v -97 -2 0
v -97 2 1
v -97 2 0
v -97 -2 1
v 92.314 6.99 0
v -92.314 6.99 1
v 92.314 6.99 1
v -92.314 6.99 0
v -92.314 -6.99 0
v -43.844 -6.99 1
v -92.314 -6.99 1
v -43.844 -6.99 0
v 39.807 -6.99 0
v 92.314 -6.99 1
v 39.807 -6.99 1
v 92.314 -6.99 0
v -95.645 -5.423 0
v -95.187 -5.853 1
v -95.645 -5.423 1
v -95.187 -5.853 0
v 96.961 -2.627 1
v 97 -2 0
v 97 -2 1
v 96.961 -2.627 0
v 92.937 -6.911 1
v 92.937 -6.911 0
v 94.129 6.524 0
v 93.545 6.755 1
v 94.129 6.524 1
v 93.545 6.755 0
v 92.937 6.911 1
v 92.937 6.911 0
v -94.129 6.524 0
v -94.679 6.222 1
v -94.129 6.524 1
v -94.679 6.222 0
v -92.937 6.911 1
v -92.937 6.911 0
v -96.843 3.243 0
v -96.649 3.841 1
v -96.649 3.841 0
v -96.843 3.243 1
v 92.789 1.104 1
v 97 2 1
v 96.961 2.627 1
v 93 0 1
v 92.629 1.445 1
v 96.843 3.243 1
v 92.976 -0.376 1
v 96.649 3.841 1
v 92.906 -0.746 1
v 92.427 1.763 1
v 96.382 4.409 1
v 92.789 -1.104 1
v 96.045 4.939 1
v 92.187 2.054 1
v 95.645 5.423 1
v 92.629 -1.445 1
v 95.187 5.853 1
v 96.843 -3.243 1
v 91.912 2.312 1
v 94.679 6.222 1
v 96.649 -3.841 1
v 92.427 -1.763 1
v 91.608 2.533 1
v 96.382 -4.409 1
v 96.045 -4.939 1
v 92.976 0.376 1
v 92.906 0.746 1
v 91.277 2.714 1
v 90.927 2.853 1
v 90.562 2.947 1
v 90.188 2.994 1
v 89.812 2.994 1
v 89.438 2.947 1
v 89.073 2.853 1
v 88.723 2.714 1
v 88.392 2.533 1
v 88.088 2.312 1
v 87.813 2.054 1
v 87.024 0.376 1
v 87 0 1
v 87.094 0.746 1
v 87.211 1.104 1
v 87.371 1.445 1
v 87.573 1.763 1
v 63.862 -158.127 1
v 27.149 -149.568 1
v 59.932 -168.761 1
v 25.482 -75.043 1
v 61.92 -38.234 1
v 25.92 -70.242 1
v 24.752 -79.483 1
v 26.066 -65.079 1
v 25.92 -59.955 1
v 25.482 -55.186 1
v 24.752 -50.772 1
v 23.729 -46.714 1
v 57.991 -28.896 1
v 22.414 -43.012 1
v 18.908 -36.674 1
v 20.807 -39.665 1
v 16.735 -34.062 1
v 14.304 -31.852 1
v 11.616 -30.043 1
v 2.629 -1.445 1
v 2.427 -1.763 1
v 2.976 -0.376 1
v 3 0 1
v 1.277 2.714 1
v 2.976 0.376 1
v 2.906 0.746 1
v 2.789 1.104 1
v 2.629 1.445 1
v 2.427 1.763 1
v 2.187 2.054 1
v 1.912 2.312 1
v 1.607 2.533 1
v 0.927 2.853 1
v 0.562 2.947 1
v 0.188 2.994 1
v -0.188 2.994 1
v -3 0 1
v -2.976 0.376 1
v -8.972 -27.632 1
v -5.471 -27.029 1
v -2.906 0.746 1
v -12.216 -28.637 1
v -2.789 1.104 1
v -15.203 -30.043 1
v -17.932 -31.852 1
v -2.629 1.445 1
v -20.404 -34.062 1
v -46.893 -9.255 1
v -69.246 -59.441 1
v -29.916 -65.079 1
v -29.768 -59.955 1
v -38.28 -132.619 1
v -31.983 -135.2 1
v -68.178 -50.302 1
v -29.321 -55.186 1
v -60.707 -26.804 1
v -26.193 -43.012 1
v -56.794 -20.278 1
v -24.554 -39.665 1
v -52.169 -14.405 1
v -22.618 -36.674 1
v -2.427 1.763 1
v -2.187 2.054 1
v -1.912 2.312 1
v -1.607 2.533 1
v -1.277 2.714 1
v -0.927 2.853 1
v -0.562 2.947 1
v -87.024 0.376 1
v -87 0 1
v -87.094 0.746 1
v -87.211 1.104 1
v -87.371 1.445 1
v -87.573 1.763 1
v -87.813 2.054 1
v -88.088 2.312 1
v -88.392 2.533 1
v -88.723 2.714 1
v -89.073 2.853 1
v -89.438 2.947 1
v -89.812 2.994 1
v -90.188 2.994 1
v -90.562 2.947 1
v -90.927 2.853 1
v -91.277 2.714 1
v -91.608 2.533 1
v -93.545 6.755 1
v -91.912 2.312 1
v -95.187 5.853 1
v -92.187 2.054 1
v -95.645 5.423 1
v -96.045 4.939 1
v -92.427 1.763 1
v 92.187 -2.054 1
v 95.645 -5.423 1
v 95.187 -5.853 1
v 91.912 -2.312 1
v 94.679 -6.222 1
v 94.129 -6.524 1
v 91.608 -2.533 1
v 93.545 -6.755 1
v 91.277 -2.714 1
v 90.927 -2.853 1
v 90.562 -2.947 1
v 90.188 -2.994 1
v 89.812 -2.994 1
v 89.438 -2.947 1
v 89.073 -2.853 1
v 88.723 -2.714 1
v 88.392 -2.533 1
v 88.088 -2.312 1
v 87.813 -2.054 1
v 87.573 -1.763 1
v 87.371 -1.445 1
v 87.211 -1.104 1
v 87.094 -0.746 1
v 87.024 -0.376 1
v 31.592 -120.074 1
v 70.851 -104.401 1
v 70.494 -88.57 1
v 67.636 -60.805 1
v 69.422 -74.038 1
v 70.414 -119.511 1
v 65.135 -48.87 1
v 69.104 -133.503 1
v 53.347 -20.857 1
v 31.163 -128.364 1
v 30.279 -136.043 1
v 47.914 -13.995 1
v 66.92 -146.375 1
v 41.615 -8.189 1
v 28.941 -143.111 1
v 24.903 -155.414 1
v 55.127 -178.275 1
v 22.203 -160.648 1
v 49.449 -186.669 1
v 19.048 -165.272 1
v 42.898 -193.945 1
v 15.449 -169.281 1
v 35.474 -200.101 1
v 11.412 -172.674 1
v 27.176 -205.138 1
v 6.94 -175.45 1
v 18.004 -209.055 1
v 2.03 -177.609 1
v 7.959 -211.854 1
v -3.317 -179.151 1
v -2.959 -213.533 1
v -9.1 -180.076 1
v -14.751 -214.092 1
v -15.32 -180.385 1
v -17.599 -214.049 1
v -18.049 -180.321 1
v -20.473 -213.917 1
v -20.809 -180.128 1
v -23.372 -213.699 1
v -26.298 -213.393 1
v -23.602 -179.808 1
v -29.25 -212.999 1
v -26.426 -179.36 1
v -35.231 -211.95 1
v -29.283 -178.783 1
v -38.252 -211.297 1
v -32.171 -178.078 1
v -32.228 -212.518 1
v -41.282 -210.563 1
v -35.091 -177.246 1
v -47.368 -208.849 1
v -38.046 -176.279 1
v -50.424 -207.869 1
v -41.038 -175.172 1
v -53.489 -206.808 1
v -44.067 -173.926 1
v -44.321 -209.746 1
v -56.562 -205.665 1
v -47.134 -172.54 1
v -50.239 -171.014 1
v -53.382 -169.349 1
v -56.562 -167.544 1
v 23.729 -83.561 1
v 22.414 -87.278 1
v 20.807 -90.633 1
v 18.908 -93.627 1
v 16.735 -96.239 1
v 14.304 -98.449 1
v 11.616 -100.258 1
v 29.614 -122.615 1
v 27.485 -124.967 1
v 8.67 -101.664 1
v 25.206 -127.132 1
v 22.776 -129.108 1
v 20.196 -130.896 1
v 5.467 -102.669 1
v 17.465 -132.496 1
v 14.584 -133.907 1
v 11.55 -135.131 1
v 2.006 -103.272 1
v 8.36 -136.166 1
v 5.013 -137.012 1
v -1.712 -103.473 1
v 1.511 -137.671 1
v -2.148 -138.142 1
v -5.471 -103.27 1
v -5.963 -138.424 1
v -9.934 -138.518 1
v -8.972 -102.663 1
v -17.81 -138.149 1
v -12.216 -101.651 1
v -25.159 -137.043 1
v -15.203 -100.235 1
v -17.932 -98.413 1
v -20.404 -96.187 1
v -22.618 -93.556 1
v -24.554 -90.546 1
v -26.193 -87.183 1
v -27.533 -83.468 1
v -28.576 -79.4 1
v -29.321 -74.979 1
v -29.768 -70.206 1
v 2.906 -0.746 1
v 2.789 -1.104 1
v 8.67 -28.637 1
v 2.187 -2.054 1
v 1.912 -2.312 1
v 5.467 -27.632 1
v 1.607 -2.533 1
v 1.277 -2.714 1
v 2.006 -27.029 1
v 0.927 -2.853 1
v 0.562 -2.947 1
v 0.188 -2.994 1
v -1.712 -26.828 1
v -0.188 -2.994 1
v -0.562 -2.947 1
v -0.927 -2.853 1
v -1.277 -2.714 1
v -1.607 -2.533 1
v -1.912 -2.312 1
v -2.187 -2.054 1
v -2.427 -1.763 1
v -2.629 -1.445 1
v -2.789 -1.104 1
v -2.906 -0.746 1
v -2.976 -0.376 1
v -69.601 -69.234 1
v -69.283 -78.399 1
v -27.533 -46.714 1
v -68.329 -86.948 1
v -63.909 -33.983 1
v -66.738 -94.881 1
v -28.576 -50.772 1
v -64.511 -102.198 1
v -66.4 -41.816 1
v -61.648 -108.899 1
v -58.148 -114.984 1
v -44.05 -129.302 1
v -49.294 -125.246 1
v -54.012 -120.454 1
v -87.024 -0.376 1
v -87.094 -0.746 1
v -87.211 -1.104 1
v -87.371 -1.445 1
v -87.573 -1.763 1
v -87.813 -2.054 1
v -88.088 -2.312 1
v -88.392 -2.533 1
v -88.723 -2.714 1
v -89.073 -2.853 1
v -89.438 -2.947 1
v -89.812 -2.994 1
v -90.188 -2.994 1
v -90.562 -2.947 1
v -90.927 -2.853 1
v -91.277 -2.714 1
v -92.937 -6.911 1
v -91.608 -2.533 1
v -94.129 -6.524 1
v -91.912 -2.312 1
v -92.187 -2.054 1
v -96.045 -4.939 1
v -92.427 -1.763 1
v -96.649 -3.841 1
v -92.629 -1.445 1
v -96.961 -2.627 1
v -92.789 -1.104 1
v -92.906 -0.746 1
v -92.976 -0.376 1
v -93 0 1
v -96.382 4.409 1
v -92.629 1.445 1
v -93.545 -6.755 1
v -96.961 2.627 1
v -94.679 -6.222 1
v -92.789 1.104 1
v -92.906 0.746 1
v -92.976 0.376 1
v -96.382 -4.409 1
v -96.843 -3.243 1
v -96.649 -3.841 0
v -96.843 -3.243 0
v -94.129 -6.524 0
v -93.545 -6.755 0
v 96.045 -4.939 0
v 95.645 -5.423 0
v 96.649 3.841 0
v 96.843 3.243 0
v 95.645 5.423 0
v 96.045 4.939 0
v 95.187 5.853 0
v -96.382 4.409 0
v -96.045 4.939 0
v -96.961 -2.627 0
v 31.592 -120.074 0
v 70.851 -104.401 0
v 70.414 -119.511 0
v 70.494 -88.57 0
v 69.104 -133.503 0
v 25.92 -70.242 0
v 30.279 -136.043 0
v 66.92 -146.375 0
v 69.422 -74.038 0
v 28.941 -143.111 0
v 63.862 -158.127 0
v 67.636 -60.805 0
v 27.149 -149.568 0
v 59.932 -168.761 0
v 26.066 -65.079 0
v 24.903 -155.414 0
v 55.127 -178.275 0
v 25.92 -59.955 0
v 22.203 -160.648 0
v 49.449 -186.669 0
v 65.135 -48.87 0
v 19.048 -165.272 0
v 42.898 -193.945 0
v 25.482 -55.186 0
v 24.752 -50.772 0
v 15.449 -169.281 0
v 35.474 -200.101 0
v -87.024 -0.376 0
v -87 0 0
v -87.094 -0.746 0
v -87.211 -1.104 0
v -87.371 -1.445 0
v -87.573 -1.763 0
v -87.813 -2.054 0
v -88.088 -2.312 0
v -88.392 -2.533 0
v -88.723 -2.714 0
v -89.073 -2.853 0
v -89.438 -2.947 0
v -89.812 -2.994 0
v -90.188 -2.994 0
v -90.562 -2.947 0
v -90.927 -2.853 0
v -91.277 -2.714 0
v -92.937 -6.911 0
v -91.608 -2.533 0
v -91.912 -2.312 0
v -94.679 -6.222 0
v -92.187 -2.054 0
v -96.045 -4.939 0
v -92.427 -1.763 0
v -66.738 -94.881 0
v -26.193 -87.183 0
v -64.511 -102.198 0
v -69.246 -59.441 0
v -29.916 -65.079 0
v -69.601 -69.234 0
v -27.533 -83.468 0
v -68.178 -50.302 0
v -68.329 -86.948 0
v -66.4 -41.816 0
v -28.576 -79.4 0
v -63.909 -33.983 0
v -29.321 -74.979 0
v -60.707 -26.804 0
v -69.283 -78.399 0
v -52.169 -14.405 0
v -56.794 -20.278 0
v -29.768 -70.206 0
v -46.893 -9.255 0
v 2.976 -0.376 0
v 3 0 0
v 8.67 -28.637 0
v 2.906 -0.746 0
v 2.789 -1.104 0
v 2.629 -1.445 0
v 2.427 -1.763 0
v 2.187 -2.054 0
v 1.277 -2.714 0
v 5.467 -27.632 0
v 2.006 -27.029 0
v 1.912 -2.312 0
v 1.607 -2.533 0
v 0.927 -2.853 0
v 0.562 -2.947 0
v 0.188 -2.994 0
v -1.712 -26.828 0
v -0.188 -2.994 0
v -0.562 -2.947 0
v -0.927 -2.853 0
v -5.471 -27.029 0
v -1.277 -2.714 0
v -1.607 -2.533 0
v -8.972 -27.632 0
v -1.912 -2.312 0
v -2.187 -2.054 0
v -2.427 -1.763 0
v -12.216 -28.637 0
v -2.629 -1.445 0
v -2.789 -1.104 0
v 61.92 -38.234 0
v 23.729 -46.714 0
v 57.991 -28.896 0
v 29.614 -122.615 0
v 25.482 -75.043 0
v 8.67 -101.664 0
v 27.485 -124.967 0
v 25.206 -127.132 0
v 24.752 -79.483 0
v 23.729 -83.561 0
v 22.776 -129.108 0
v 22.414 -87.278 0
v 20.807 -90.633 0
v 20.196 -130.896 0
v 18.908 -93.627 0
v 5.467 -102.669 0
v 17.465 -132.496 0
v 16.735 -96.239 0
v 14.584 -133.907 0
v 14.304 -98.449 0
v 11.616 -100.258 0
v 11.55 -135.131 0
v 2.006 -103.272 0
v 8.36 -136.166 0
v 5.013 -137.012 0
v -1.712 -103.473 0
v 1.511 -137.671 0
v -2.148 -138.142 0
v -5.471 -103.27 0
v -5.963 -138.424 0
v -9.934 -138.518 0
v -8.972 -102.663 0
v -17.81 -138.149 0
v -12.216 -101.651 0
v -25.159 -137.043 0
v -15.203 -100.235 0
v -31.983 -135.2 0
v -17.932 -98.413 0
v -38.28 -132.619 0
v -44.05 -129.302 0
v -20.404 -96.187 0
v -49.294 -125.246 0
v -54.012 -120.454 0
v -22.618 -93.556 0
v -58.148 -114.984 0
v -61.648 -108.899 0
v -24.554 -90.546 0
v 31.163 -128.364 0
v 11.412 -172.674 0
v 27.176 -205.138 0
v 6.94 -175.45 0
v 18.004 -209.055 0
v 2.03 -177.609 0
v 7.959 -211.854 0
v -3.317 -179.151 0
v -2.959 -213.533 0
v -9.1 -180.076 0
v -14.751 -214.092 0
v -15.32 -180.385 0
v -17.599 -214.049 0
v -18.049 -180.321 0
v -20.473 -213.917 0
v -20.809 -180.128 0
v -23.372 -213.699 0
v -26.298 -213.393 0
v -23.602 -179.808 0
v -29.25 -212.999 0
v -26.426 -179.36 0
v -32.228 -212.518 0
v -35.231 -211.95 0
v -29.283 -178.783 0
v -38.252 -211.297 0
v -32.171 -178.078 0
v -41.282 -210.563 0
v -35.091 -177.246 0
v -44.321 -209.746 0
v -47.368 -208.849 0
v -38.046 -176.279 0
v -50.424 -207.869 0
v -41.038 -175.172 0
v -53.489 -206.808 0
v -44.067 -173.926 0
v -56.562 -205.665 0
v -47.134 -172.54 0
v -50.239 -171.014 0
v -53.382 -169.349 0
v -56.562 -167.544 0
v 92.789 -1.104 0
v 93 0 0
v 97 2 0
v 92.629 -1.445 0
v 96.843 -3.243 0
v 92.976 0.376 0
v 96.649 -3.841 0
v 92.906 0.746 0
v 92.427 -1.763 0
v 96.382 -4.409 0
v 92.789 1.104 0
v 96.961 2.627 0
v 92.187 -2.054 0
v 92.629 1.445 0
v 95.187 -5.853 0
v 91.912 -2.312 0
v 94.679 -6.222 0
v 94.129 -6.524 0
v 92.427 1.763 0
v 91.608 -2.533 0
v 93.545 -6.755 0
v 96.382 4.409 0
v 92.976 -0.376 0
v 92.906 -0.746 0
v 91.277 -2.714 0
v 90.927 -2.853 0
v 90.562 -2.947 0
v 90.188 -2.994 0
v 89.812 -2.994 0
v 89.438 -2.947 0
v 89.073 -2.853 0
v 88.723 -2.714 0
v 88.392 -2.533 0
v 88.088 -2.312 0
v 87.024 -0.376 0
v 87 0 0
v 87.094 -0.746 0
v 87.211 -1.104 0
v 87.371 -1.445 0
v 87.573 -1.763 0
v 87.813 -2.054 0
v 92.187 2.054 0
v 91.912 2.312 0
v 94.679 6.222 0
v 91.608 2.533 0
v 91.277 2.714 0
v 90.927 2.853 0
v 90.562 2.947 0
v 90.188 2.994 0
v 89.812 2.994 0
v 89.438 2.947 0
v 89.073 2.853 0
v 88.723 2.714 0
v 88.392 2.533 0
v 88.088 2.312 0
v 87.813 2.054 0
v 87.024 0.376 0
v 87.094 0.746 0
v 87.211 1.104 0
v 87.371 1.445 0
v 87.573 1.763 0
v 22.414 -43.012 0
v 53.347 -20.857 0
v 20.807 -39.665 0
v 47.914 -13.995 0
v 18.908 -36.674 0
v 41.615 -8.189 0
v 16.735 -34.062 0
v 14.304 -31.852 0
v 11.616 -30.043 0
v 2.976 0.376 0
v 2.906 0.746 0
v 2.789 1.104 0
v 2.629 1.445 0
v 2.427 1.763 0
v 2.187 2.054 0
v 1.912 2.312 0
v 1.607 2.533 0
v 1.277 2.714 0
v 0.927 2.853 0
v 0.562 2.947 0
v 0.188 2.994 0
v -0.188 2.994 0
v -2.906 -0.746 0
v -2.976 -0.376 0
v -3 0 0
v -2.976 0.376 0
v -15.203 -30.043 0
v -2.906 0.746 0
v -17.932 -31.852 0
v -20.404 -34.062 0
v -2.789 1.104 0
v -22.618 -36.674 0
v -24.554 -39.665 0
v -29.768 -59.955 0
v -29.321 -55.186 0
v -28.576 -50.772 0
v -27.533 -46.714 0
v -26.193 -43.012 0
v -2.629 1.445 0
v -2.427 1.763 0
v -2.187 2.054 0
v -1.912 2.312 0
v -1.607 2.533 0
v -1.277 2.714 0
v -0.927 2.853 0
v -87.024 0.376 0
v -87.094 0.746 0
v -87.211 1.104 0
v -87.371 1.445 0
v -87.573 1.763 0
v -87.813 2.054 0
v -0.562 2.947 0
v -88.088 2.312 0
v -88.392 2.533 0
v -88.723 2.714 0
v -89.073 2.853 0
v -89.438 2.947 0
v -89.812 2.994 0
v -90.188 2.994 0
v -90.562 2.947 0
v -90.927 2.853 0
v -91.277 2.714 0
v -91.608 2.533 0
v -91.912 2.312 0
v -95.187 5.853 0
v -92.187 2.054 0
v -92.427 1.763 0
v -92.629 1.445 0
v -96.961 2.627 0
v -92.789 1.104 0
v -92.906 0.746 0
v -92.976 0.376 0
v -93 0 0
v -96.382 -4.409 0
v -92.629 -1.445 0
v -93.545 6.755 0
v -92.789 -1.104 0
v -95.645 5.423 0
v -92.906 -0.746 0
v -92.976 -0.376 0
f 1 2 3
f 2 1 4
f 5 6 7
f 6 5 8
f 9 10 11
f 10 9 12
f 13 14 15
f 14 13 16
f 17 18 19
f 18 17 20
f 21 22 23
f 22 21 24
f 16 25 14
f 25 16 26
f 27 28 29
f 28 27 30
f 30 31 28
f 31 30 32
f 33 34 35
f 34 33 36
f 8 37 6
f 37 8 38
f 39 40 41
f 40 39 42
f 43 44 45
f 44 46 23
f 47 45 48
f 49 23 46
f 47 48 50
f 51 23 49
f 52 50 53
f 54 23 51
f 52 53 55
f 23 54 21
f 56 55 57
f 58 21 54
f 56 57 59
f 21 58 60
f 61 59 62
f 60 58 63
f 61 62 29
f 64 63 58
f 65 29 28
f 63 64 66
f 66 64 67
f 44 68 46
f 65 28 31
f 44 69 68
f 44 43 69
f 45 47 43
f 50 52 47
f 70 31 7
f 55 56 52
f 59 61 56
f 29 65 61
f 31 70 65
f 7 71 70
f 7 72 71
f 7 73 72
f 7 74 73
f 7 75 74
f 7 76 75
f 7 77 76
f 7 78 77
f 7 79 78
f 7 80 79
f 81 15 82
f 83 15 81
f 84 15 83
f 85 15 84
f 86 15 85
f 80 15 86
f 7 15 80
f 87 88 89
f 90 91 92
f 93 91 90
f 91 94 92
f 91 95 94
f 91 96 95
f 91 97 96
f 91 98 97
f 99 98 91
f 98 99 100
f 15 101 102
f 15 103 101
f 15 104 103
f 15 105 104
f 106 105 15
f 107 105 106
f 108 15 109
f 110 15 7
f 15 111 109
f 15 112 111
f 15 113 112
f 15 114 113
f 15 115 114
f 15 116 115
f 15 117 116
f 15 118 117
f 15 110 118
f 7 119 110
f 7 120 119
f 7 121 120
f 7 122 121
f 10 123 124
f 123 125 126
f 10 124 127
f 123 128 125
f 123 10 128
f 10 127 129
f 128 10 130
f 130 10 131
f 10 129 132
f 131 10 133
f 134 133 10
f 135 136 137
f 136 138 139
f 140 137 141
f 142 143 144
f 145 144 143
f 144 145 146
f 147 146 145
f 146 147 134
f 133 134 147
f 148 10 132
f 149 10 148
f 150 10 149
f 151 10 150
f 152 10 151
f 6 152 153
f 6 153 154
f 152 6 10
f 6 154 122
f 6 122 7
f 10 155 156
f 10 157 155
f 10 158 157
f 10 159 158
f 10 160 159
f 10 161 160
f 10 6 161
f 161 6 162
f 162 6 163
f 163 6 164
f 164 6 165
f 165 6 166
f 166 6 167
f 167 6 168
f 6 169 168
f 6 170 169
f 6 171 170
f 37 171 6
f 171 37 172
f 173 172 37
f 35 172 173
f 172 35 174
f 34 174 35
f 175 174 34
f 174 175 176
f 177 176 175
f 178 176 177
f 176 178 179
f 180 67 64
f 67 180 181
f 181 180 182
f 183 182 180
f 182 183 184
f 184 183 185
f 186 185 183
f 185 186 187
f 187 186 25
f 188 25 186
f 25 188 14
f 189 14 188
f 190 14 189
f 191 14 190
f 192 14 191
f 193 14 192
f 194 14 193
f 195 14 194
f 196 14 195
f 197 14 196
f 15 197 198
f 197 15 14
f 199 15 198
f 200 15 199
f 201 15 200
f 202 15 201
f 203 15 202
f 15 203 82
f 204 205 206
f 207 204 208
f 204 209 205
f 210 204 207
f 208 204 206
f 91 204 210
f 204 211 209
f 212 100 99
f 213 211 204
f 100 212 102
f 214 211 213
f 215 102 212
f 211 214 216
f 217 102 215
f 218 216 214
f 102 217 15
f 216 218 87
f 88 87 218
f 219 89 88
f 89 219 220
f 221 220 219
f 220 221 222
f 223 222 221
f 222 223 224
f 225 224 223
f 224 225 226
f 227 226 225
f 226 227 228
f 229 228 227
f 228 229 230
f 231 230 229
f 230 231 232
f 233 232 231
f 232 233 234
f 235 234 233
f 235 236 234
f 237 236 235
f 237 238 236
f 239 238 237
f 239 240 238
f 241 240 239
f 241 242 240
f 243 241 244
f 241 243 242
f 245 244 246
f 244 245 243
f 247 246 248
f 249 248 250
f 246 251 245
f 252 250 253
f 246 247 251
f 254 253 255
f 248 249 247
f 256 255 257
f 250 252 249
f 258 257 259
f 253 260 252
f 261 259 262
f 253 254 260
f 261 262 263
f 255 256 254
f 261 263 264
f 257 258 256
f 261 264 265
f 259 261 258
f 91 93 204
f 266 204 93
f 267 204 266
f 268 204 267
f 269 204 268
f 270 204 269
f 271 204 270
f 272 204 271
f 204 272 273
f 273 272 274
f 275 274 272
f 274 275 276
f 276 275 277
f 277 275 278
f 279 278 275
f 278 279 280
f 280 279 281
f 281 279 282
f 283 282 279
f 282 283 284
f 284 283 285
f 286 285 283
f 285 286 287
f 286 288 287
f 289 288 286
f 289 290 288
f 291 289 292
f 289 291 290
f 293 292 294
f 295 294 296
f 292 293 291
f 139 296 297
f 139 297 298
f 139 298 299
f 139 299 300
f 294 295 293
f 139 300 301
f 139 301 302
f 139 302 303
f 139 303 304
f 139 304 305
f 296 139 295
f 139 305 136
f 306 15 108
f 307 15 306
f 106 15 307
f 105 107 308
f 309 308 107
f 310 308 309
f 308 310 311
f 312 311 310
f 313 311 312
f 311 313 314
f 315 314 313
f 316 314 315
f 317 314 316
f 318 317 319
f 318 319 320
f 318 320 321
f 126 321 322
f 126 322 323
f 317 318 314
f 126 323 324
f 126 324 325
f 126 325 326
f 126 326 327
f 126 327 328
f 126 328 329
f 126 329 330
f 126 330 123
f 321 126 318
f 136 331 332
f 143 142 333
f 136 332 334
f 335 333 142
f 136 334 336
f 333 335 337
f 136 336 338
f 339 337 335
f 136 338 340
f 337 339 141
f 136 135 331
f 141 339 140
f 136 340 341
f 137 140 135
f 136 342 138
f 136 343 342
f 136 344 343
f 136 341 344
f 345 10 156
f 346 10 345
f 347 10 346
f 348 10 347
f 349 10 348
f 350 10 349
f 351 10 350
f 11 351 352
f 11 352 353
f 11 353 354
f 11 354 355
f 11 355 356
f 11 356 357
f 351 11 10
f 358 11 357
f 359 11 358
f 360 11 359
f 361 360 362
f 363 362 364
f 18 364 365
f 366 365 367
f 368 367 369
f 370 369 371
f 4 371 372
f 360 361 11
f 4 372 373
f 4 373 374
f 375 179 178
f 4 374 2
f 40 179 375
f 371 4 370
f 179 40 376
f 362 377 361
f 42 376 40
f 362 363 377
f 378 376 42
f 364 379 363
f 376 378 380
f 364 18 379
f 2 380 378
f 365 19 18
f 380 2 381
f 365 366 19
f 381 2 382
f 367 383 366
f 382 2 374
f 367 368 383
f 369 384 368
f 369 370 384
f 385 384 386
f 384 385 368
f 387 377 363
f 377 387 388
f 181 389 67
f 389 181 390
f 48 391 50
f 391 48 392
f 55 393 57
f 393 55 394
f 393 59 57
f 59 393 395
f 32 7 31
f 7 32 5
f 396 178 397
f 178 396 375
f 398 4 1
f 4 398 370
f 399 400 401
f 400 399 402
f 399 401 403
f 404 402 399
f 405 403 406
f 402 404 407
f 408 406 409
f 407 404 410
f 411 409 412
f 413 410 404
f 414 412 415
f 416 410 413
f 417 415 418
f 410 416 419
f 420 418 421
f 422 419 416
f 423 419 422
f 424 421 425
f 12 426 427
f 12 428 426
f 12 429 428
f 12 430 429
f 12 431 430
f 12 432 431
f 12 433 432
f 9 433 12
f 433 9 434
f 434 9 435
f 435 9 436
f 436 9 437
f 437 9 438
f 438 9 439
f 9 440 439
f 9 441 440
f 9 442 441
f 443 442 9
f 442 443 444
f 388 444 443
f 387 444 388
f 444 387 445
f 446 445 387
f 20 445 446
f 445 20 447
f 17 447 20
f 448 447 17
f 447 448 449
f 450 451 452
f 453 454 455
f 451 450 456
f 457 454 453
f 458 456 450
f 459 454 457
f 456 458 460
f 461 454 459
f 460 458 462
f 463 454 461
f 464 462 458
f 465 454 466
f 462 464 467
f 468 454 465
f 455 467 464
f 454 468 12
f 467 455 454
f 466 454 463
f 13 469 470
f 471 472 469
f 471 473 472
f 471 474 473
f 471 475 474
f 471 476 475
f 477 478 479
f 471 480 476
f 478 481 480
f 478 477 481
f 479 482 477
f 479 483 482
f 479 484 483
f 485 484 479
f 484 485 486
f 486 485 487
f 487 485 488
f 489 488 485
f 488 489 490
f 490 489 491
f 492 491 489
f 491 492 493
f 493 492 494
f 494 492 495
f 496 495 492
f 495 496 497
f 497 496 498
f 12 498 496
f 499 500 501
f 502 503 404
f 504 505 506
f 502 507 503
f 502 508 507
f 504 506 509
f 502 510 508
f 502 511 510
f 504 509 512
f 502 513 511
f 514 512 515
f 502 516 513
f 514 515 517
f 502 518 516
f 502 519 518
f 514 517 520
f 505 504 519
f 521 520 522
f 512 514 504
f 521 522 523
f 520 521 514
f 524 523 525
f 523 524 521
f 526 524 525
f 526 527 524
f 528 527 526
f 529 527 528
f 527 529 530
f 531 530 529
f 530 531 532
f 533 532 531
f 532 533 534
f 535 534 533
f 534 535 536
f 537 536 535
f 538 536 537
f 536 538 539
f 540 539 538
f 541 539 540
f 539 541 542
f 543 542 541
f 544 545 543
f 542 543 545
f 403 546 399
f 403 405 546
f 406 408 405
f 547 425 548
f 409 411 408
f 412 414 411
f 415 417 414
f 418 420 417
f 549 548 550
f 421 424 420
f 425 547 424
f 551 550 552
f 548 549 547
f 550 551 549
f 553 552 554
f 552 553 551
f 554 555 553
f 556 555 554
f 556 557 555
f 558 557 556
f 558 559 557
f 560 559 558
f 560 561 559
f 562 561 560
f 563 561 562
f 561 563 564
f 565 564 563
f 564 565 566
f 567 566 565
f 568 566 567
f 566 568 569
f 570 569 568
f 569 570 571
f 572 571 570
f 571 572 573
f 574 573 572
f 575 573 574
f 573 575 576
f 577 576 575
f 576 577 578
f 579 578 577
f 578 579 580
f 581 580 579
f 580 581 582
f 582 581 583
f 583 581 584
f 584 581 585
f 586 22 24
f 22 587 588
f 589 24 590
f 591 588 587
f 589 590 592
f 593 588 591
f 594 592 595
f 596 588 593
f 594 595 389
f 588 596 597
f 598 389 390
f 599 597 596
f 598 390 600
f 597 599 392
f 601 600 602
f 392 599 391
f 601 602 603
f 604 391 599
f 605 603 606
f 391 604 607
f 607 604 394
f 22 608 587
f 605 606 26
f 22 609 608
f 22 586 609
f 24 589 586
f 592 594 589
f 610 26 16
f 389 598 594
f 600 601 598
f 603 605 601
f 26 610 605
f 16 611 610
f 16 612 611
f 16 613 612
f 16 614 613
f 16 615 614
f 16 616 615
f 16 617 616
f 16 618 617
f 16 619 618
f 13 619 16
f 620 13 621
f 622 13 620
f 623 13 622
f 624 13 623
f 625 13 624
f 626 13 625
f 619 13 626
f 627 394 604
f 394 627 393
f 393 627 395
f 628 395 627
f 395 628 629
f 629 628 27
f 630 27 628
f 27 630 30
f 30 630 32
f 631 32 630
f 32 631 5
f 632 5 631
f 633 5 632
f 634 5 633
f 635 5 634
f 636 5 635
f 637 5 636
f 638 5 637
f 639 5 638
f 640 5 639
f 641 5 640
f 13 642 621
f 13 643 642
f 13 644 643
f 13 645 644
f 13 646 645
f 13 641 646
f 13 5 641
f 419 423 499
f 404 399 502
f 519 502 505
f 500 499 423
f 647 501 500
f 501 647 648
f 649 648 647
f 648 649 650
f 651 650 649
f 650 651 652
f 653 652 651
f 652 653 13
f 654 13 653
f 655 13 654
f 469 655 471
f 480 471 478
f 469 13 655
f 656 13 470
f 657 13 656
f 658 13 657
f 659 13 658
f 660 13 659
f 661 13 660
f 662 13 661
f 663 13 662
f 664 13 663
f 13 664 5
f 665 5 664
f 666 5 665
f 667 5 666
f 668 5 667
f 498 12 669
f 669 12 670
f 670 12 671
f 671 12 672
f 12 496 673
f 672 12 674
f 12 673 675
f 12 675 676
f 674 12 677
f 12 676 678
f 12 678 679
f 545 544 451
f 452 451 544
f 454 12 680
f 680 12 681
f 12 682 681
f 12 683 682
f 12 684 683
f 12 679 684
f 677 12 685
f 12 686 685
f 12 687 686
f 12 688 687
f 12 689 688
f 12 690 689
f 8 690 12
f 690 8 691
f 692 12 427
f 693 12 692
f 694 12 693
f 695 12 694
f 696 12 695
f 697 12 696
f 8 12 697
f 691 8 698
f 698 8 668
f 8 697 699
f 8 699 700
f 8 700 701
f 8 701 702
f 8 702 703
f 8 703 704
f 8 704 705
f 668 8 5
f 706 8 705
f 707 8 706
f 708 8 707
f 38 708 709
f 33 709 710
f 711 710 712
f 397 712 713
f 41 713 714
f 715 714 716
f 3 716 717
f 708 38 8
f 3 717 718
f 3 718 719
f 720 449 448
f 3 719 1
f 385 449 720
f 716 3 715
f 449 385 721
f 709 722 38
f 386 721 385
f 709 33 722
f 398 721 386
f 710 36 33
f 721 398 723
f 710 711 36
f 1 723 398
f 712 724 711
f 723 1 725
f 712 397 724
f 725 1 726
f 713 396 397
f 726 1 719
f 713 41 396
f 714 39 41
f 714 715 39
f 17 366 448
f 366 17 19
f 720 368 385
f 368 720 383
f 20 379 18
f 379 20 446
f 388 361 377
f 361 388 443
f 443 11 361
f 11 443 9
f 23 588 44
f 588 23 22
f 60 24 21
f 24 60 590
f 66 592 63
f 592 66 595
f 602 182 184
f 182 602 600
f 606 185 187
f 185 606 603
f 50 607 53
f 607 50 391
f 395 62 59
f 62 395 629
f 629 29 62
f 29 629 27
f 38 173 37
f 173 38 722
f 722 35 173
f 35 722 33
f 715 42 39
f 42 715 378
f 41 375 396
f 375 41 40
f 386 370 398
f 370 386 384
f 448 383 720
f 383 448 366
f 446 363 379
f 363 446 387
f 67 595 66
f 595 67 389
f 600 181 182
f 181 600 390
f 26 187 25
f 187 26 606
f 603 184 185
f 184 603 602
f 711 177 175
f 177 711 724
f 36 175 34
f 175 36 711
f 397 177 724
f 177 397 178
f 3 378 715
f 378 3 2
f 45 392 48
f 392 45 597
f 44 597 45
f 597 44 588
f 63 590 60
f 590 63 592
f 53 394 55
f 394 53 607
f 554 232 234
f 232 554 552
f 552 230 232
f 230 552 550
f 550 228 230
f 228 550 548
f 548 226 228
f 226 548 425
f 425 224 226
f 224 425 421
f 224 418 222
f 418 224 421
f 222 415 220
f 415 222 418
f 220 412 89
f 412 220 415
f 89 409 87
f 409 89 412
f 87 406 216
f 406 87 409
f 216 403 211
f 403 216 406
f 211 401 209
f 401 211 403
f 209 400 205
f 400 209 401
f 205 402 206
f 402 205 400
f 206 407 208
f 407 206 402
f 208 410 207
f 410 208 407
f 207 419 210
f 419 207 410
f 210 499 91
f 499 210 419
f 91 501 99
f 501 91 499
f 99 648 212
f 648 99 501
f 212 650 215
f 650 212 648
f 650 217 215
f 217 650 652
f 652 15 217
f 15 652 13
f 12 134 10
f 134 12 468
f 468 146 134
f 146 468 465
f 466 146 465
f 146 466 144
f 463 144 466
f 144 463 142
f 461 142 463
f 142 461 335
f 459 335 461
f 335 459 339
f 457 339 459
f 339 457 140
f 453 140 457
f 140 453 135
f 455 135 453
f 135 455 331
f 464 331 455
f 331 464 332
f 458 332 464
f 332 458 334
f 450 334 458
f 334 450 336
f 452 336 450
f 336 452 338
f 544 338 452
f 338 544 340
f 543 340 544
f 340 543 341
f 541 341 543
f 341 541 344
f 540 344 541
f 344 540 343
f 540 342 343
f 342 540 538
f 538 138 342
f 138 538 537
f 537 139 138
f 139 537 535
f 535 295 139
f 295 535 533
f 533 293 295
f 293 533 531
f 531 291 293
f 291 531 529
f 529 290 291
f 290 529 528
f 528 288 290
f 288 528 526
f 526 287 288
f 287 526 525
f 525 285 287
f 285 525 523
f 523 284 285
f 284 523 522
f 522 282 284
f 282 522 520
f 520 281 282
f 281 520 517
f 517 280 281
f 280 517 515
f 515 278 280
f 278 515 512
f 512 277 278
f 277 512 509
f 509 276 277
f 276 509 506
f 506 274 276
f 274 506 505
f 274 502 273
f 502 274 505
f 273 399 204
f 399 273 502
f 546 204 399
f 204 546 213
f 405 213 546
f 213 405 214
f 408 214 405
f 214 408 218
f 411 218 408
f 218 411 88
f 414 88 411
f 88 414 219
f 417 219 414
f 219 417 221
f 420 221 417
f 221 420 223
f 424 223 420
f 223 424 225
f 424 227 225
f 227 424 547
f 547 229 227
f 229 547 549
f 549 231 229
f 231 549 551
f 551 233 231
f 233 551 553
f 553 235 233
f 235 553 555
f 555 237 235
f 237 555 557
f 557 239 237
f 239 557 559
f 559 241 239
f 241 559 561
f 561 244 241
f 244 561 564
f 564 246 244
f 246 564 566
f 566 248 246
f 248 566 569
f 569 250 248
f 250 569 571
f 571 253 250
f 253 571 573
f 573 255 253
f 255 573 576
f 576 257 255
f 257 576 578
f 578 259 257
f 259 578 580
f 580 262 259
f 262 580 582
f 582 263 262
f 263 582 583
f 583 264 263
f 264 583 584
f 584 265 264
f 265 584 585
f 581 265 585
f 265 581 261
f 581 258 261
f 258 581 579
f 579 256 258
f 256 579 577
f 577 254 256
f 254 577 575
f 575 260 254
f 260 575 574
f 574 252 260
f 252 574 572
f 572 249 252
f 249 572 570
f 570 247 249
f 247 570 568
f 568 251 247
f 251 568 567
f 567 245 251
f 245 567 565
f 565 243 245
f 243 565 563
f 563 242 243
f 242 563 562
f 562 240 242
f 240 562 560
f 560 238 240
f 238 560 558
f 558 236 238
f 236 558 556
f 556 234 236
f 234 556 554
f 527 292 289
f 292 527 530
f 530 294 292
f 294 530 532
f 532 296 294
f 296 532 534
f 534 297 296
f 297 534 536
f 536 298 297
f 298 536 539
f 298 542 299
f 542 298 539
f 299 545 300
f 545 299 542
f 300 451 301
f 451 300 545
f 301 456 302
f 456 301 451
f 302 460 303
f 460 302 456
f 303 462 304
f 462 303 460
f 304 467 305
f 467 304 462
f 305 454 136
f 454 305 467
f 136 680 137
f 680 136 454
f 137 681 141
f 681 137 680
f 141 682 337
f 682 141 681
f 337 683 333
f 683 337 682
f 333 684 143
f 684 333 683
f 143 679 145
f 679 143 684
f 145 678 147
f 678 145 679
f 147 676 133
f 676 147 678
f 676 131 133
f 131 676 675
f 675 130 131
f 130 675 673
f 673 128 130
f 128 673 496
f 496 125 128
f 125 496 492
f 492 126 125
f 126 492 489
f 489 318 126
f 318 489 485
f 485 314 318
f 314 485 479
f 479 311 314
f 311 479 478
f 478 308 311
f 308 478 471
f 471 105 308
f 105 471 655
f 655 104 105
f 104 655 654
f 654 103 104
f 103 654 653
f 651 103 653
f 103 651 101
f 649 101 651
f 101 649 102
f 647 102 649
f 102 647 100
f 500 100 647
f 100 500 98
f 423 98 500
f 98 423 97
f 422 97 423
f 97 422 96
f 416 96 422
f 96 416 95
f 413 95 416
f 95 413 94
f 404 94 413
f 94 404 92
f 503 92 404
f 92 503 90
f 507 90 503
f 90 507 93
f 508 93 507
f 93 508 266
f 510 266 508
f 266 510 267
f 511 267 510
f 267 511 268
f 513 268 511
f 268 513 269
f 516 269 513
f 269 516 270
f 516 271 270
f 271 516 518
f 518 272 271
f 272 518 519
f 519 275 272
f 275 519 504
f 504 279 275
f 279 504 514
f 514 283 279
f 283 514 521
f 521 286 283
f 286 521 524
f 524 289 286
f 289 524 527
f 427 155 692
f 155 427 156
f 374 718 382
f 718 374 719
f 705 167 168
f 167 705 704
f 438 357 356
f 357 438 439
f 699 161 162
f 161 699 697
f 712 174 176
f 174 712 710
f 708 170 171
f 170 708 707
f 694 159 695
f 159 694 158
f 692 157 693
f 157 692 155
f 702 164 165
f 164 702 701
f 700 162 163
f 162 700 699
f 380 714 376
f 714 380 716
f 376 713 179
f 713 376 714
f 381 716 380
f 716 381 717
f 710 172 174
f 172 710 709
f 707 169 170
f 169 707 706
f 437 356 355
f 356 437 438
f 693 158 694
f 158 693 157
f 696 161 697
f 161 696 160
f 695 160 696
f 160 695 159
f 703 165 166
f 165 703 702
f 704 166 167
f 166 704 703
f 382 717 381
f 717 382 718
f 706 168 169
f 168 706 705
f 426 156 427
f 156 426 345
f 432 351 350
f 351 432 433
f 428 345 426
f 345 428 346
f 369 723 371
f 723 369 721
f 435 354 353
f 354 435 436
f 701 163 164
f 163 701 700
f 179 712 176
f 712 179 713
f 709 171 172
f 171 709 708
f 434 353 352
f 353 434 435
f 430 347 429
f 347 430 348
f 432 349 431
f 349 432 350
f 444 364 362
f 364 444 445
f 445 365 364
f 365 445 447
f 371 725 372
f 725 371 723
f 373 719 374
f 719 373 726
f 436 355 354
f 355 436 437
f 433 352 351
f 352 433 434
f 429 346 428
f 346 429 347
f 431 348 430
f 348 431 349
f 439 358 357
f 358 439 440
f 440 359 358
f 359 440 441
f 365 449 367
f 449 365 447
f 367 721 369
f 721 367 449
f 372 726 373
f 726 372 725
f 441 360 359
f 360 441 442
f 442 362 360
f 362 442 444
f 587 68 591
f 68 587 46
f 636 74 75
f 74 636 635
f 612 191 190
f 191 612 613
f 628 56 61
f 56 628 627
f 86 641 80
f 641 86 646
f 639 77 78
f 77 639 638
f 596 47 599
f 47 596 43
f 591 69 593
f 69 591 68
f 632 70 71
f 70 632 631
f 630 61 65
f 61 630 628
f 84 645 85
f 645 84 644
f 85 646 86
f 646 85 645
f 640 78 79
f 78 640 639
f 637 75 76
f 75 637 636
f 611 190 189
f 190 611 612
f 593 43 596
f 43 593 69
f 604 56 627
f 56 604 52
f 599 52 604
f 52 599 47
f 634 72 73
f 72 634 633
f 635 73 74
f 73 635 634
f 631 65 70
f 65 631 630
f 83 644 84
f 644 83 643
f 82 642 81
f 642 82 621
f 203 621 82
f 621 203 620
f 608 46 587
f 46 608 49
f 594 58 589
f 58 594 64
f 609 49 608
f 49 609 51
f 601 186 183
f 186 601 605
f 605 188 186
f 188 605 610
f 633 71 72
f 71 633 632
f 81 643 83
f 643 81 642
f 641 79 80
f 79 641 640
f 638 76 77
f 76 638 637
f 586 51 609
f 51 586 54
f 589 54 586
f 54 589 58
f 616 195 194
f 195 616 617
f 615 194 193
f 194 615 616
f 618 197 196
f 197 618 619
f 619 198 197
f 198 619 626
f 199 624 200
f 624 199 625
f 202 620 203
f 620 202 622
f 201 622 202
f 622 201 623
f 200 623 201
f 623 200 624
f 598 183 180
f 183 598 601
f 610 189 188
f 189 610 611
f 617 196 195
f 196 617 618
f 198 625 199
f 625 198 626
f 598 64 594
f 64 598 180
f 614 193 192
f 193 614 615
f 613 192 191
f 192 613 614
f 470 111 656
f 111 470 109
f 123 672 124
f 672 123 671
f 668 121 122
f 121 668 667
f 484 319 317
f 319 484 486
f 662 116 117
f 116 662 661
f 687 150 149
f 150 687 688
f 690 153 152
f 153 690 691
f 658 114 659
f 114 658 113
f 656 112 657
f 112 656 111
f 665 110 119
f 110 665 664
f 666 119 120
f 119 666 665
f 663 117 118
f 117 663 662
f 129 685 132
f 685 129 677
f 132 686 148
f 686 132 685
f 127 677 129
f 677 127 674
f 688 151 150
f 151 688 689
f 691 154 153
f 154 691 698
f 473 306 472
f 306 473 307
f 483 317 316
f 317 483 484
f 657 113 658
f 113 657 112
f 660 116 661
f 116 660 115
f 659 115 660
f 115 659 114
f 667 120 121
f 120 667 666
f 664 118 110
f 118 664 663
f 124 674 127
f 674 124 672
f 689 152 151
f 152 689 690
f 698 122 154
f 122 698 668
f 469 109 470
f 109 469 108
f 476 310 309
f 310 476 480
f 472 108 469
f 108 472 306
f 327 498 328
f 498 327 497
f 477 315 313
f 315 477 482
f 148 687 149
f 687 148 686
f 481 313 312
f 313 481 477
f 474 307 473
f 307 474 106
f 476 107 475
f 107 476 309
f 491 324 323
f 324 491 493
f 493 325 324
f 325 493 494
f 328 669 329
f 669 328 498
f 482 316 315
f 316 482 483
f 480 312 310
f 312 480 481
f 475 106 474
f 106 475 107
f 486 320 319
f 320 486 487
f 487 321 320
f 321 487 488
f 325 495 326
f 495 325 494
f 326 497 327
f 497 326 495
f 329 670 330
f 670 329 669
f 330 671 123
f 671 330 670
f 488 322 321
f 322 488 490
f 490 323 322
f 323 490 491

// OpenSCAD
$fn = 50;


difference() {
	union() {
		translate(v = [0, 0, 0]) {
			rotate(a = [0, 0, 0]) {
				hull() {
					translate(v = [-92.0000000000, 2.0000000000, 0]) {
						rotate(a = [0, 0, 0]) {
							translate(v = [0, 0, 0]) {
								rotate(a = [0, 0, 0]) {
									cylinder(h = 1, r = 5);
								}
							}
						}
					}
					translate(v = [92.0000000000, 2.0000000000, 0]) {
						rotate(a = [0, 0, 0]) {
							translate(v = [0, 0, 0]) {
								rotate(a = [0, 0, 0]) {
									cylinder(h = 1, r = 5);
								}
							}
						}
					}
					translate(v = [-92.0000000000, -2.0000000000, 0]) {
						rotate(a = [0, 0, 0]) {
							translate(v = [0, 0, 0]) {
								rotate(a = [0, 0, 0]) {
									cylinder(h = 1, r = 5);
								}
							}
						}
					}
					translate(v = [92.0000000000, -2.0000000000, 0]) {
						rotate(a = [0, 0, 0]) {
							translate(v = [0, 0, 0]) {
								rotate(a = [0, 0, 0]) {
									cylinder(h = 1, r = 5);
								}
							}
						}
					}
				}
			}
		}
		translate(v = [0, 0, 0]) {
			rotate(a = [0, 0, 0]) {
				linear_extrude(height = 1) {
					text(font = "DejaVu Sans Mono:style=Bold", halign = "center", size = 209.0000000000, text = "9", valign = "top");
				}
			}
		}
	}
	union() {
		translate(v = [-90.0000000000, 0.0000000000, -125.0000000000]) {
			rotate(a = [0, 0, 0]) {
				cylinder(h = 250, r = 3.0000000000);
			}
		}
		translate(v = [90.0000000000, 0.0000000000, -125.0000000000]) {
			rotate(a = [0, 0, 0]) {
				cylinder(h = 250, r = 3.0000000000);
			}
		}
		translate(v = [90.0000000000, 0.0000000000, -125.0000000000]) {
			rotate(a = [0, 0, 0]) {
				cylinder(h = 250, r = 3.0000000000);
			}
		}
		translate(v = [0, 0, -125.0000000000]) {
			rotate(a = [0, 0, 0]) {
				cylinder(h = 250, r = 3.0000000000);
			}
		}
	}
}
